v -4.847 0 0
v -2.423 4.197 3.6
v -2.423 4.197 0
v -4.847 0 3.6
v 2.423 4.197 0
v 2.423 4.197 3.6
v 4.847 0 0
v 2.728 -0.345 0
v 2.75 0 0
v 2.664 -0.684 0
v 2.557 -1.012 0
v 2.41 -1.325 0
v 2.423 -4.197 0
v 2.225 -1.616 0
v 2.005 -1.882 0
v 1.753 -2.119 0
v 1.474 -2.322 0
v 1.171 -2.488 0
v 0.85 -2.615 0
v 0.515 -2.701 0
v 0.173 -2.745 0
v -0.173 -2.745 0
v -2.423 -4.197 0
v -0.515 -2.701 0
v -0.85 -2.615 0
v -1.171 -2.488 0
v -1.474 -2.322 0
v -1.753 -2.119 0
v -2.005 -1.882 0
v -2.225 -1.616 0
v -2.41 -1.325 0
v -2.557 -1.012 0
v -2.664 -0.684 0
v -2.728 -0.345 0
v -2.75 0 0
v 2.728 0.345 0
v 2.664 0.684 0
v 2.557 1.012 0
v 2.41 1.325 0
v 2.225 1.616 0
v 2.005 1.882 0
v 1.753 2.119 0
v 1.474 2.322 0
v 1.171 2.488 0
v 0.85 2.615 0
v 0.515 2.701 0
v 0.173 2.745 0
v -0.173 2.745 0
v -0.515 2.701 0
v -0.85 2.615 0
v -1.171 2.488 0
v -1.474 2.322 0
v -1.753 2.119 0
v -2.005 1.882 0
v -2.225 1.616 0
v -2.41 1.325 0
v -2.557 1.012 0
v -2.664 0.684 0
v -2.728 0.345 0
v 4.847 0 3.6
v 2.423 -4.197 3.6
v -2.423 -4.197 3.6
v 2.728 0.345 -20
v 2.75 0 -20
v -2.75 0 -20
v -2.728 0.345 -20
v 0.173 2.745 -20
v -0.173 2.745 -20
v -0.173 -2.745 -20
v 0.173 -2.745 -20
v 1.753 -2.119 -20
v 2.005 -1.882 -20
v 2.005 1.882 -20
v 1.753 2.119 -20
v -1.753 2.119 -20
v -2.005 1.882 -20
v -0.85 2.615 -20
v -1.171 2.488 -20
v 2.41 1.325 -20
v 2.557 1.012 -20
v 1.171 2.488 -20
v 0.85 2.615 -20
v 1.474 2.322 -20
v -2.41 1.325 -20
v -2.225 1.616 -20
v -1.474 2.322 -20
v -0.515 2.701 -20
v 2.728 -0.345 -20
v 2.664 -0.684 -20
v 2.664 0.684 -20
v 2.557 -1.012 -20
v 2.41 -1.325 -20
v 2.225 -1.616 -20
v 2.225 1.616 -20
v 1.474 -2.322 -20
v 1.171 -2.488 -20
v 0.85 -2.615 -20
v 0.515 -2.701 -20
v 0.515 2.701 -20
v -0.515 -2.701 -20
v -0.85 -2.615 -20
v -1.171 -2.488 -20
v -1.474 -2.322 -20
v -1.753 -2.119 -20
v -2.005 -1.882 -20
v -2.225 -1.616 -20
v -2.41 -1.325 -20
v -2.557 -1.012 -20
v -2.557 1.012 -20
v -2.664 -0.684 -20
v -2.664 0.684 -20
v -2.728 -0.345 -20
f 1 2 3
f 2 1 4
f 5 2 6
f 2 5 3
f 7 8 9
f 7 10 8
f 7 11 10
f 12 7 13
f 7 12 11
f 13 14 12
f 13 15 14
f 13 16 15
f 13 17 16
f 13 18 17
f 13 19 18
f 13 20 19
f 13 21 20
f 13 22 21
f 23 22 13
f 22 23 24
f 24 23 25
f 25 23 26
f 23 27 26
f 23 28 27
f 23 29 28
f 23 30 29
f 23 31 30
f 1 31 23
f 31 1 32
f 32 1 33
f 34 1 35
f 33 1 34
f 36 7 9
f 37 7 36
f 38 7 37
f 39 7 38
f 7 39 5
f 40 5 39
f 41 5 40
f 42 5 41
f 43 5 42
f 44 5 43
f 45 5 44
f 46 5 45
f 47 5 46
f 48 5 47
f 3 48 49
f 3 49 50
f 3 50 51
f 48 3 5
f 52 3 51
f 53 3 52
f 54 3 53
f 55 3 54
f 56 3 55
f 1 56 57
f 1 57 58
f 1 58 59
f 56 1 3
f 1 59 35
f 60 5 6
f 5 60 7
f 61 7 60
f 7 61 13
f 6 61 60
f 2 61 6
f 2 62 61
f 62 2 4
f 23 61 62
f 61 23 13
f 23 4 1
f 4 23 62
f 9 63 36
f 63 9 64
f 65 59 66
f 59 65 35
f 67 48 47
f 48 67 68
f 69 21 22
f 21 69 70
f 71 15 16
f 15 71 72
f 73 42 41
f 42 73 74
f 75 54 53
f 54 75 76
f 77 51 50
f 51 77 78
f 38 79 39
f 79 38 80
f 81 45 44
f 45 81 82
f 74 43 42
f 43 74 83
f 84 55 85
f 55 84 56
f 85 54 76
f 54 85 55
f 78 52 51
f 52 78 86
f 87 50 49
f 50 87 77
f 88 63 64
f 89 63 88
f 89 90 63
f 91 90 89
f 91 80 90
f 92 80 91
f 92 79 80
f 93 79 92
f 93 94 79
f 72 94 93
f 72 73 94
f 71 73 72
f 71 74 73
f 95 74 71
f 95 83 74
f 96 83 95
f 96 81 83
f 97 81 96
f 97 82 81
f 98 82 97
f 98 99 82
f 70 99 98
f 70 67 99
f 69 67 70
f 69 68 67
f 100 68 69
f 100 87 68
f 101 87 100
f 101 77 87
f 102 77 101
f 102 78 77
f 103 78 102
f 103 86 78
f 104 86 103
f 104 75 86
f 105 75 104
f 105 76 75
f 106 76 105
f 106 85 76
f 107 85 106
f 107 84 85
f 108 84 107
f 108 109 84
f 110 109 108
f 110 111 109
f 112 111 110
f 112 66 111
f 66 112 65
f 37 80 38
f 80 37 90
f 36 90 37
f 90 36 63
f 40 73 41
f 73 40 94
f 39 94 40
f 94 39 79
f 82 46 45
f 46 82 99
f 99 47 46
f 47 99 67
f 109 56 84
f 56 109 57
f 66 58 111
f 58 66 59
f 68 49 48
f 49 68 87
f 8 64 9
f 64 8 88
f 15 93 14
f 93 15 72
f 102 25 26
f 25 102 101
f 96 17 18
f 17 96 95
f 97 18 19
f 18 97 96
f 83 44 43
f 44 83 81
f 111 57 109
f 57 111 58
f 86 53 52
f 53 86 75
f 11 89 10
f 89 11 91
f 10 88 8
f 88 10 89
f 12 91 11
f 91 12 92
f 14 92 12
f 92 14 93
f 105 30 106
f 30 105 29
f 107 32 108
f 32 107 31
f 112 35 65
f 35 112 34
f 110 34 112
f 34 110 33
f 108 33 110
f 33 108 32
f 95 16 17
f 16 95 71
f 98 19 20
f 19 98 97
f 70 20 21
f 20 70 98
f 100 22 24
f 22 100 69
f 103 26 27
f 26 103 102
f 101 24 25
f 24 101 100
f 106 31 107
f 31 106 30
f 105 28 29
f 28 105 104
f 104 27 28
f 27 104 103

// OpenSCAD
$fn = 50;


difference() {
	union() {
		translate(v = [0, 0, 0]) {
			rotate(a = [0, 0, 0]) {
				translate(v = [0, 0, 0]) {
					rotate(a = [0, 0, 0]) {
						linear_extrude(height = 3.6000000000) {
							polygon(points = [[4.8468000000, 0.0000000000], [2.4234000000, 4.1974519271], [-2.4234000000, 4.1974519271], [-4.8468000000, 0.0000000000], [-2.4234000000, -4.1974519271], [2.4234000000, -4.1974519271]]);
						}
					}
				}
			}
		}
		translate(v = [0, 0, -20]) {
			rotate(a = [0, 0, 0]) {
				cylinder(h = 20, r = 2.7500000000);
			}
		}
	}
	union();
}
